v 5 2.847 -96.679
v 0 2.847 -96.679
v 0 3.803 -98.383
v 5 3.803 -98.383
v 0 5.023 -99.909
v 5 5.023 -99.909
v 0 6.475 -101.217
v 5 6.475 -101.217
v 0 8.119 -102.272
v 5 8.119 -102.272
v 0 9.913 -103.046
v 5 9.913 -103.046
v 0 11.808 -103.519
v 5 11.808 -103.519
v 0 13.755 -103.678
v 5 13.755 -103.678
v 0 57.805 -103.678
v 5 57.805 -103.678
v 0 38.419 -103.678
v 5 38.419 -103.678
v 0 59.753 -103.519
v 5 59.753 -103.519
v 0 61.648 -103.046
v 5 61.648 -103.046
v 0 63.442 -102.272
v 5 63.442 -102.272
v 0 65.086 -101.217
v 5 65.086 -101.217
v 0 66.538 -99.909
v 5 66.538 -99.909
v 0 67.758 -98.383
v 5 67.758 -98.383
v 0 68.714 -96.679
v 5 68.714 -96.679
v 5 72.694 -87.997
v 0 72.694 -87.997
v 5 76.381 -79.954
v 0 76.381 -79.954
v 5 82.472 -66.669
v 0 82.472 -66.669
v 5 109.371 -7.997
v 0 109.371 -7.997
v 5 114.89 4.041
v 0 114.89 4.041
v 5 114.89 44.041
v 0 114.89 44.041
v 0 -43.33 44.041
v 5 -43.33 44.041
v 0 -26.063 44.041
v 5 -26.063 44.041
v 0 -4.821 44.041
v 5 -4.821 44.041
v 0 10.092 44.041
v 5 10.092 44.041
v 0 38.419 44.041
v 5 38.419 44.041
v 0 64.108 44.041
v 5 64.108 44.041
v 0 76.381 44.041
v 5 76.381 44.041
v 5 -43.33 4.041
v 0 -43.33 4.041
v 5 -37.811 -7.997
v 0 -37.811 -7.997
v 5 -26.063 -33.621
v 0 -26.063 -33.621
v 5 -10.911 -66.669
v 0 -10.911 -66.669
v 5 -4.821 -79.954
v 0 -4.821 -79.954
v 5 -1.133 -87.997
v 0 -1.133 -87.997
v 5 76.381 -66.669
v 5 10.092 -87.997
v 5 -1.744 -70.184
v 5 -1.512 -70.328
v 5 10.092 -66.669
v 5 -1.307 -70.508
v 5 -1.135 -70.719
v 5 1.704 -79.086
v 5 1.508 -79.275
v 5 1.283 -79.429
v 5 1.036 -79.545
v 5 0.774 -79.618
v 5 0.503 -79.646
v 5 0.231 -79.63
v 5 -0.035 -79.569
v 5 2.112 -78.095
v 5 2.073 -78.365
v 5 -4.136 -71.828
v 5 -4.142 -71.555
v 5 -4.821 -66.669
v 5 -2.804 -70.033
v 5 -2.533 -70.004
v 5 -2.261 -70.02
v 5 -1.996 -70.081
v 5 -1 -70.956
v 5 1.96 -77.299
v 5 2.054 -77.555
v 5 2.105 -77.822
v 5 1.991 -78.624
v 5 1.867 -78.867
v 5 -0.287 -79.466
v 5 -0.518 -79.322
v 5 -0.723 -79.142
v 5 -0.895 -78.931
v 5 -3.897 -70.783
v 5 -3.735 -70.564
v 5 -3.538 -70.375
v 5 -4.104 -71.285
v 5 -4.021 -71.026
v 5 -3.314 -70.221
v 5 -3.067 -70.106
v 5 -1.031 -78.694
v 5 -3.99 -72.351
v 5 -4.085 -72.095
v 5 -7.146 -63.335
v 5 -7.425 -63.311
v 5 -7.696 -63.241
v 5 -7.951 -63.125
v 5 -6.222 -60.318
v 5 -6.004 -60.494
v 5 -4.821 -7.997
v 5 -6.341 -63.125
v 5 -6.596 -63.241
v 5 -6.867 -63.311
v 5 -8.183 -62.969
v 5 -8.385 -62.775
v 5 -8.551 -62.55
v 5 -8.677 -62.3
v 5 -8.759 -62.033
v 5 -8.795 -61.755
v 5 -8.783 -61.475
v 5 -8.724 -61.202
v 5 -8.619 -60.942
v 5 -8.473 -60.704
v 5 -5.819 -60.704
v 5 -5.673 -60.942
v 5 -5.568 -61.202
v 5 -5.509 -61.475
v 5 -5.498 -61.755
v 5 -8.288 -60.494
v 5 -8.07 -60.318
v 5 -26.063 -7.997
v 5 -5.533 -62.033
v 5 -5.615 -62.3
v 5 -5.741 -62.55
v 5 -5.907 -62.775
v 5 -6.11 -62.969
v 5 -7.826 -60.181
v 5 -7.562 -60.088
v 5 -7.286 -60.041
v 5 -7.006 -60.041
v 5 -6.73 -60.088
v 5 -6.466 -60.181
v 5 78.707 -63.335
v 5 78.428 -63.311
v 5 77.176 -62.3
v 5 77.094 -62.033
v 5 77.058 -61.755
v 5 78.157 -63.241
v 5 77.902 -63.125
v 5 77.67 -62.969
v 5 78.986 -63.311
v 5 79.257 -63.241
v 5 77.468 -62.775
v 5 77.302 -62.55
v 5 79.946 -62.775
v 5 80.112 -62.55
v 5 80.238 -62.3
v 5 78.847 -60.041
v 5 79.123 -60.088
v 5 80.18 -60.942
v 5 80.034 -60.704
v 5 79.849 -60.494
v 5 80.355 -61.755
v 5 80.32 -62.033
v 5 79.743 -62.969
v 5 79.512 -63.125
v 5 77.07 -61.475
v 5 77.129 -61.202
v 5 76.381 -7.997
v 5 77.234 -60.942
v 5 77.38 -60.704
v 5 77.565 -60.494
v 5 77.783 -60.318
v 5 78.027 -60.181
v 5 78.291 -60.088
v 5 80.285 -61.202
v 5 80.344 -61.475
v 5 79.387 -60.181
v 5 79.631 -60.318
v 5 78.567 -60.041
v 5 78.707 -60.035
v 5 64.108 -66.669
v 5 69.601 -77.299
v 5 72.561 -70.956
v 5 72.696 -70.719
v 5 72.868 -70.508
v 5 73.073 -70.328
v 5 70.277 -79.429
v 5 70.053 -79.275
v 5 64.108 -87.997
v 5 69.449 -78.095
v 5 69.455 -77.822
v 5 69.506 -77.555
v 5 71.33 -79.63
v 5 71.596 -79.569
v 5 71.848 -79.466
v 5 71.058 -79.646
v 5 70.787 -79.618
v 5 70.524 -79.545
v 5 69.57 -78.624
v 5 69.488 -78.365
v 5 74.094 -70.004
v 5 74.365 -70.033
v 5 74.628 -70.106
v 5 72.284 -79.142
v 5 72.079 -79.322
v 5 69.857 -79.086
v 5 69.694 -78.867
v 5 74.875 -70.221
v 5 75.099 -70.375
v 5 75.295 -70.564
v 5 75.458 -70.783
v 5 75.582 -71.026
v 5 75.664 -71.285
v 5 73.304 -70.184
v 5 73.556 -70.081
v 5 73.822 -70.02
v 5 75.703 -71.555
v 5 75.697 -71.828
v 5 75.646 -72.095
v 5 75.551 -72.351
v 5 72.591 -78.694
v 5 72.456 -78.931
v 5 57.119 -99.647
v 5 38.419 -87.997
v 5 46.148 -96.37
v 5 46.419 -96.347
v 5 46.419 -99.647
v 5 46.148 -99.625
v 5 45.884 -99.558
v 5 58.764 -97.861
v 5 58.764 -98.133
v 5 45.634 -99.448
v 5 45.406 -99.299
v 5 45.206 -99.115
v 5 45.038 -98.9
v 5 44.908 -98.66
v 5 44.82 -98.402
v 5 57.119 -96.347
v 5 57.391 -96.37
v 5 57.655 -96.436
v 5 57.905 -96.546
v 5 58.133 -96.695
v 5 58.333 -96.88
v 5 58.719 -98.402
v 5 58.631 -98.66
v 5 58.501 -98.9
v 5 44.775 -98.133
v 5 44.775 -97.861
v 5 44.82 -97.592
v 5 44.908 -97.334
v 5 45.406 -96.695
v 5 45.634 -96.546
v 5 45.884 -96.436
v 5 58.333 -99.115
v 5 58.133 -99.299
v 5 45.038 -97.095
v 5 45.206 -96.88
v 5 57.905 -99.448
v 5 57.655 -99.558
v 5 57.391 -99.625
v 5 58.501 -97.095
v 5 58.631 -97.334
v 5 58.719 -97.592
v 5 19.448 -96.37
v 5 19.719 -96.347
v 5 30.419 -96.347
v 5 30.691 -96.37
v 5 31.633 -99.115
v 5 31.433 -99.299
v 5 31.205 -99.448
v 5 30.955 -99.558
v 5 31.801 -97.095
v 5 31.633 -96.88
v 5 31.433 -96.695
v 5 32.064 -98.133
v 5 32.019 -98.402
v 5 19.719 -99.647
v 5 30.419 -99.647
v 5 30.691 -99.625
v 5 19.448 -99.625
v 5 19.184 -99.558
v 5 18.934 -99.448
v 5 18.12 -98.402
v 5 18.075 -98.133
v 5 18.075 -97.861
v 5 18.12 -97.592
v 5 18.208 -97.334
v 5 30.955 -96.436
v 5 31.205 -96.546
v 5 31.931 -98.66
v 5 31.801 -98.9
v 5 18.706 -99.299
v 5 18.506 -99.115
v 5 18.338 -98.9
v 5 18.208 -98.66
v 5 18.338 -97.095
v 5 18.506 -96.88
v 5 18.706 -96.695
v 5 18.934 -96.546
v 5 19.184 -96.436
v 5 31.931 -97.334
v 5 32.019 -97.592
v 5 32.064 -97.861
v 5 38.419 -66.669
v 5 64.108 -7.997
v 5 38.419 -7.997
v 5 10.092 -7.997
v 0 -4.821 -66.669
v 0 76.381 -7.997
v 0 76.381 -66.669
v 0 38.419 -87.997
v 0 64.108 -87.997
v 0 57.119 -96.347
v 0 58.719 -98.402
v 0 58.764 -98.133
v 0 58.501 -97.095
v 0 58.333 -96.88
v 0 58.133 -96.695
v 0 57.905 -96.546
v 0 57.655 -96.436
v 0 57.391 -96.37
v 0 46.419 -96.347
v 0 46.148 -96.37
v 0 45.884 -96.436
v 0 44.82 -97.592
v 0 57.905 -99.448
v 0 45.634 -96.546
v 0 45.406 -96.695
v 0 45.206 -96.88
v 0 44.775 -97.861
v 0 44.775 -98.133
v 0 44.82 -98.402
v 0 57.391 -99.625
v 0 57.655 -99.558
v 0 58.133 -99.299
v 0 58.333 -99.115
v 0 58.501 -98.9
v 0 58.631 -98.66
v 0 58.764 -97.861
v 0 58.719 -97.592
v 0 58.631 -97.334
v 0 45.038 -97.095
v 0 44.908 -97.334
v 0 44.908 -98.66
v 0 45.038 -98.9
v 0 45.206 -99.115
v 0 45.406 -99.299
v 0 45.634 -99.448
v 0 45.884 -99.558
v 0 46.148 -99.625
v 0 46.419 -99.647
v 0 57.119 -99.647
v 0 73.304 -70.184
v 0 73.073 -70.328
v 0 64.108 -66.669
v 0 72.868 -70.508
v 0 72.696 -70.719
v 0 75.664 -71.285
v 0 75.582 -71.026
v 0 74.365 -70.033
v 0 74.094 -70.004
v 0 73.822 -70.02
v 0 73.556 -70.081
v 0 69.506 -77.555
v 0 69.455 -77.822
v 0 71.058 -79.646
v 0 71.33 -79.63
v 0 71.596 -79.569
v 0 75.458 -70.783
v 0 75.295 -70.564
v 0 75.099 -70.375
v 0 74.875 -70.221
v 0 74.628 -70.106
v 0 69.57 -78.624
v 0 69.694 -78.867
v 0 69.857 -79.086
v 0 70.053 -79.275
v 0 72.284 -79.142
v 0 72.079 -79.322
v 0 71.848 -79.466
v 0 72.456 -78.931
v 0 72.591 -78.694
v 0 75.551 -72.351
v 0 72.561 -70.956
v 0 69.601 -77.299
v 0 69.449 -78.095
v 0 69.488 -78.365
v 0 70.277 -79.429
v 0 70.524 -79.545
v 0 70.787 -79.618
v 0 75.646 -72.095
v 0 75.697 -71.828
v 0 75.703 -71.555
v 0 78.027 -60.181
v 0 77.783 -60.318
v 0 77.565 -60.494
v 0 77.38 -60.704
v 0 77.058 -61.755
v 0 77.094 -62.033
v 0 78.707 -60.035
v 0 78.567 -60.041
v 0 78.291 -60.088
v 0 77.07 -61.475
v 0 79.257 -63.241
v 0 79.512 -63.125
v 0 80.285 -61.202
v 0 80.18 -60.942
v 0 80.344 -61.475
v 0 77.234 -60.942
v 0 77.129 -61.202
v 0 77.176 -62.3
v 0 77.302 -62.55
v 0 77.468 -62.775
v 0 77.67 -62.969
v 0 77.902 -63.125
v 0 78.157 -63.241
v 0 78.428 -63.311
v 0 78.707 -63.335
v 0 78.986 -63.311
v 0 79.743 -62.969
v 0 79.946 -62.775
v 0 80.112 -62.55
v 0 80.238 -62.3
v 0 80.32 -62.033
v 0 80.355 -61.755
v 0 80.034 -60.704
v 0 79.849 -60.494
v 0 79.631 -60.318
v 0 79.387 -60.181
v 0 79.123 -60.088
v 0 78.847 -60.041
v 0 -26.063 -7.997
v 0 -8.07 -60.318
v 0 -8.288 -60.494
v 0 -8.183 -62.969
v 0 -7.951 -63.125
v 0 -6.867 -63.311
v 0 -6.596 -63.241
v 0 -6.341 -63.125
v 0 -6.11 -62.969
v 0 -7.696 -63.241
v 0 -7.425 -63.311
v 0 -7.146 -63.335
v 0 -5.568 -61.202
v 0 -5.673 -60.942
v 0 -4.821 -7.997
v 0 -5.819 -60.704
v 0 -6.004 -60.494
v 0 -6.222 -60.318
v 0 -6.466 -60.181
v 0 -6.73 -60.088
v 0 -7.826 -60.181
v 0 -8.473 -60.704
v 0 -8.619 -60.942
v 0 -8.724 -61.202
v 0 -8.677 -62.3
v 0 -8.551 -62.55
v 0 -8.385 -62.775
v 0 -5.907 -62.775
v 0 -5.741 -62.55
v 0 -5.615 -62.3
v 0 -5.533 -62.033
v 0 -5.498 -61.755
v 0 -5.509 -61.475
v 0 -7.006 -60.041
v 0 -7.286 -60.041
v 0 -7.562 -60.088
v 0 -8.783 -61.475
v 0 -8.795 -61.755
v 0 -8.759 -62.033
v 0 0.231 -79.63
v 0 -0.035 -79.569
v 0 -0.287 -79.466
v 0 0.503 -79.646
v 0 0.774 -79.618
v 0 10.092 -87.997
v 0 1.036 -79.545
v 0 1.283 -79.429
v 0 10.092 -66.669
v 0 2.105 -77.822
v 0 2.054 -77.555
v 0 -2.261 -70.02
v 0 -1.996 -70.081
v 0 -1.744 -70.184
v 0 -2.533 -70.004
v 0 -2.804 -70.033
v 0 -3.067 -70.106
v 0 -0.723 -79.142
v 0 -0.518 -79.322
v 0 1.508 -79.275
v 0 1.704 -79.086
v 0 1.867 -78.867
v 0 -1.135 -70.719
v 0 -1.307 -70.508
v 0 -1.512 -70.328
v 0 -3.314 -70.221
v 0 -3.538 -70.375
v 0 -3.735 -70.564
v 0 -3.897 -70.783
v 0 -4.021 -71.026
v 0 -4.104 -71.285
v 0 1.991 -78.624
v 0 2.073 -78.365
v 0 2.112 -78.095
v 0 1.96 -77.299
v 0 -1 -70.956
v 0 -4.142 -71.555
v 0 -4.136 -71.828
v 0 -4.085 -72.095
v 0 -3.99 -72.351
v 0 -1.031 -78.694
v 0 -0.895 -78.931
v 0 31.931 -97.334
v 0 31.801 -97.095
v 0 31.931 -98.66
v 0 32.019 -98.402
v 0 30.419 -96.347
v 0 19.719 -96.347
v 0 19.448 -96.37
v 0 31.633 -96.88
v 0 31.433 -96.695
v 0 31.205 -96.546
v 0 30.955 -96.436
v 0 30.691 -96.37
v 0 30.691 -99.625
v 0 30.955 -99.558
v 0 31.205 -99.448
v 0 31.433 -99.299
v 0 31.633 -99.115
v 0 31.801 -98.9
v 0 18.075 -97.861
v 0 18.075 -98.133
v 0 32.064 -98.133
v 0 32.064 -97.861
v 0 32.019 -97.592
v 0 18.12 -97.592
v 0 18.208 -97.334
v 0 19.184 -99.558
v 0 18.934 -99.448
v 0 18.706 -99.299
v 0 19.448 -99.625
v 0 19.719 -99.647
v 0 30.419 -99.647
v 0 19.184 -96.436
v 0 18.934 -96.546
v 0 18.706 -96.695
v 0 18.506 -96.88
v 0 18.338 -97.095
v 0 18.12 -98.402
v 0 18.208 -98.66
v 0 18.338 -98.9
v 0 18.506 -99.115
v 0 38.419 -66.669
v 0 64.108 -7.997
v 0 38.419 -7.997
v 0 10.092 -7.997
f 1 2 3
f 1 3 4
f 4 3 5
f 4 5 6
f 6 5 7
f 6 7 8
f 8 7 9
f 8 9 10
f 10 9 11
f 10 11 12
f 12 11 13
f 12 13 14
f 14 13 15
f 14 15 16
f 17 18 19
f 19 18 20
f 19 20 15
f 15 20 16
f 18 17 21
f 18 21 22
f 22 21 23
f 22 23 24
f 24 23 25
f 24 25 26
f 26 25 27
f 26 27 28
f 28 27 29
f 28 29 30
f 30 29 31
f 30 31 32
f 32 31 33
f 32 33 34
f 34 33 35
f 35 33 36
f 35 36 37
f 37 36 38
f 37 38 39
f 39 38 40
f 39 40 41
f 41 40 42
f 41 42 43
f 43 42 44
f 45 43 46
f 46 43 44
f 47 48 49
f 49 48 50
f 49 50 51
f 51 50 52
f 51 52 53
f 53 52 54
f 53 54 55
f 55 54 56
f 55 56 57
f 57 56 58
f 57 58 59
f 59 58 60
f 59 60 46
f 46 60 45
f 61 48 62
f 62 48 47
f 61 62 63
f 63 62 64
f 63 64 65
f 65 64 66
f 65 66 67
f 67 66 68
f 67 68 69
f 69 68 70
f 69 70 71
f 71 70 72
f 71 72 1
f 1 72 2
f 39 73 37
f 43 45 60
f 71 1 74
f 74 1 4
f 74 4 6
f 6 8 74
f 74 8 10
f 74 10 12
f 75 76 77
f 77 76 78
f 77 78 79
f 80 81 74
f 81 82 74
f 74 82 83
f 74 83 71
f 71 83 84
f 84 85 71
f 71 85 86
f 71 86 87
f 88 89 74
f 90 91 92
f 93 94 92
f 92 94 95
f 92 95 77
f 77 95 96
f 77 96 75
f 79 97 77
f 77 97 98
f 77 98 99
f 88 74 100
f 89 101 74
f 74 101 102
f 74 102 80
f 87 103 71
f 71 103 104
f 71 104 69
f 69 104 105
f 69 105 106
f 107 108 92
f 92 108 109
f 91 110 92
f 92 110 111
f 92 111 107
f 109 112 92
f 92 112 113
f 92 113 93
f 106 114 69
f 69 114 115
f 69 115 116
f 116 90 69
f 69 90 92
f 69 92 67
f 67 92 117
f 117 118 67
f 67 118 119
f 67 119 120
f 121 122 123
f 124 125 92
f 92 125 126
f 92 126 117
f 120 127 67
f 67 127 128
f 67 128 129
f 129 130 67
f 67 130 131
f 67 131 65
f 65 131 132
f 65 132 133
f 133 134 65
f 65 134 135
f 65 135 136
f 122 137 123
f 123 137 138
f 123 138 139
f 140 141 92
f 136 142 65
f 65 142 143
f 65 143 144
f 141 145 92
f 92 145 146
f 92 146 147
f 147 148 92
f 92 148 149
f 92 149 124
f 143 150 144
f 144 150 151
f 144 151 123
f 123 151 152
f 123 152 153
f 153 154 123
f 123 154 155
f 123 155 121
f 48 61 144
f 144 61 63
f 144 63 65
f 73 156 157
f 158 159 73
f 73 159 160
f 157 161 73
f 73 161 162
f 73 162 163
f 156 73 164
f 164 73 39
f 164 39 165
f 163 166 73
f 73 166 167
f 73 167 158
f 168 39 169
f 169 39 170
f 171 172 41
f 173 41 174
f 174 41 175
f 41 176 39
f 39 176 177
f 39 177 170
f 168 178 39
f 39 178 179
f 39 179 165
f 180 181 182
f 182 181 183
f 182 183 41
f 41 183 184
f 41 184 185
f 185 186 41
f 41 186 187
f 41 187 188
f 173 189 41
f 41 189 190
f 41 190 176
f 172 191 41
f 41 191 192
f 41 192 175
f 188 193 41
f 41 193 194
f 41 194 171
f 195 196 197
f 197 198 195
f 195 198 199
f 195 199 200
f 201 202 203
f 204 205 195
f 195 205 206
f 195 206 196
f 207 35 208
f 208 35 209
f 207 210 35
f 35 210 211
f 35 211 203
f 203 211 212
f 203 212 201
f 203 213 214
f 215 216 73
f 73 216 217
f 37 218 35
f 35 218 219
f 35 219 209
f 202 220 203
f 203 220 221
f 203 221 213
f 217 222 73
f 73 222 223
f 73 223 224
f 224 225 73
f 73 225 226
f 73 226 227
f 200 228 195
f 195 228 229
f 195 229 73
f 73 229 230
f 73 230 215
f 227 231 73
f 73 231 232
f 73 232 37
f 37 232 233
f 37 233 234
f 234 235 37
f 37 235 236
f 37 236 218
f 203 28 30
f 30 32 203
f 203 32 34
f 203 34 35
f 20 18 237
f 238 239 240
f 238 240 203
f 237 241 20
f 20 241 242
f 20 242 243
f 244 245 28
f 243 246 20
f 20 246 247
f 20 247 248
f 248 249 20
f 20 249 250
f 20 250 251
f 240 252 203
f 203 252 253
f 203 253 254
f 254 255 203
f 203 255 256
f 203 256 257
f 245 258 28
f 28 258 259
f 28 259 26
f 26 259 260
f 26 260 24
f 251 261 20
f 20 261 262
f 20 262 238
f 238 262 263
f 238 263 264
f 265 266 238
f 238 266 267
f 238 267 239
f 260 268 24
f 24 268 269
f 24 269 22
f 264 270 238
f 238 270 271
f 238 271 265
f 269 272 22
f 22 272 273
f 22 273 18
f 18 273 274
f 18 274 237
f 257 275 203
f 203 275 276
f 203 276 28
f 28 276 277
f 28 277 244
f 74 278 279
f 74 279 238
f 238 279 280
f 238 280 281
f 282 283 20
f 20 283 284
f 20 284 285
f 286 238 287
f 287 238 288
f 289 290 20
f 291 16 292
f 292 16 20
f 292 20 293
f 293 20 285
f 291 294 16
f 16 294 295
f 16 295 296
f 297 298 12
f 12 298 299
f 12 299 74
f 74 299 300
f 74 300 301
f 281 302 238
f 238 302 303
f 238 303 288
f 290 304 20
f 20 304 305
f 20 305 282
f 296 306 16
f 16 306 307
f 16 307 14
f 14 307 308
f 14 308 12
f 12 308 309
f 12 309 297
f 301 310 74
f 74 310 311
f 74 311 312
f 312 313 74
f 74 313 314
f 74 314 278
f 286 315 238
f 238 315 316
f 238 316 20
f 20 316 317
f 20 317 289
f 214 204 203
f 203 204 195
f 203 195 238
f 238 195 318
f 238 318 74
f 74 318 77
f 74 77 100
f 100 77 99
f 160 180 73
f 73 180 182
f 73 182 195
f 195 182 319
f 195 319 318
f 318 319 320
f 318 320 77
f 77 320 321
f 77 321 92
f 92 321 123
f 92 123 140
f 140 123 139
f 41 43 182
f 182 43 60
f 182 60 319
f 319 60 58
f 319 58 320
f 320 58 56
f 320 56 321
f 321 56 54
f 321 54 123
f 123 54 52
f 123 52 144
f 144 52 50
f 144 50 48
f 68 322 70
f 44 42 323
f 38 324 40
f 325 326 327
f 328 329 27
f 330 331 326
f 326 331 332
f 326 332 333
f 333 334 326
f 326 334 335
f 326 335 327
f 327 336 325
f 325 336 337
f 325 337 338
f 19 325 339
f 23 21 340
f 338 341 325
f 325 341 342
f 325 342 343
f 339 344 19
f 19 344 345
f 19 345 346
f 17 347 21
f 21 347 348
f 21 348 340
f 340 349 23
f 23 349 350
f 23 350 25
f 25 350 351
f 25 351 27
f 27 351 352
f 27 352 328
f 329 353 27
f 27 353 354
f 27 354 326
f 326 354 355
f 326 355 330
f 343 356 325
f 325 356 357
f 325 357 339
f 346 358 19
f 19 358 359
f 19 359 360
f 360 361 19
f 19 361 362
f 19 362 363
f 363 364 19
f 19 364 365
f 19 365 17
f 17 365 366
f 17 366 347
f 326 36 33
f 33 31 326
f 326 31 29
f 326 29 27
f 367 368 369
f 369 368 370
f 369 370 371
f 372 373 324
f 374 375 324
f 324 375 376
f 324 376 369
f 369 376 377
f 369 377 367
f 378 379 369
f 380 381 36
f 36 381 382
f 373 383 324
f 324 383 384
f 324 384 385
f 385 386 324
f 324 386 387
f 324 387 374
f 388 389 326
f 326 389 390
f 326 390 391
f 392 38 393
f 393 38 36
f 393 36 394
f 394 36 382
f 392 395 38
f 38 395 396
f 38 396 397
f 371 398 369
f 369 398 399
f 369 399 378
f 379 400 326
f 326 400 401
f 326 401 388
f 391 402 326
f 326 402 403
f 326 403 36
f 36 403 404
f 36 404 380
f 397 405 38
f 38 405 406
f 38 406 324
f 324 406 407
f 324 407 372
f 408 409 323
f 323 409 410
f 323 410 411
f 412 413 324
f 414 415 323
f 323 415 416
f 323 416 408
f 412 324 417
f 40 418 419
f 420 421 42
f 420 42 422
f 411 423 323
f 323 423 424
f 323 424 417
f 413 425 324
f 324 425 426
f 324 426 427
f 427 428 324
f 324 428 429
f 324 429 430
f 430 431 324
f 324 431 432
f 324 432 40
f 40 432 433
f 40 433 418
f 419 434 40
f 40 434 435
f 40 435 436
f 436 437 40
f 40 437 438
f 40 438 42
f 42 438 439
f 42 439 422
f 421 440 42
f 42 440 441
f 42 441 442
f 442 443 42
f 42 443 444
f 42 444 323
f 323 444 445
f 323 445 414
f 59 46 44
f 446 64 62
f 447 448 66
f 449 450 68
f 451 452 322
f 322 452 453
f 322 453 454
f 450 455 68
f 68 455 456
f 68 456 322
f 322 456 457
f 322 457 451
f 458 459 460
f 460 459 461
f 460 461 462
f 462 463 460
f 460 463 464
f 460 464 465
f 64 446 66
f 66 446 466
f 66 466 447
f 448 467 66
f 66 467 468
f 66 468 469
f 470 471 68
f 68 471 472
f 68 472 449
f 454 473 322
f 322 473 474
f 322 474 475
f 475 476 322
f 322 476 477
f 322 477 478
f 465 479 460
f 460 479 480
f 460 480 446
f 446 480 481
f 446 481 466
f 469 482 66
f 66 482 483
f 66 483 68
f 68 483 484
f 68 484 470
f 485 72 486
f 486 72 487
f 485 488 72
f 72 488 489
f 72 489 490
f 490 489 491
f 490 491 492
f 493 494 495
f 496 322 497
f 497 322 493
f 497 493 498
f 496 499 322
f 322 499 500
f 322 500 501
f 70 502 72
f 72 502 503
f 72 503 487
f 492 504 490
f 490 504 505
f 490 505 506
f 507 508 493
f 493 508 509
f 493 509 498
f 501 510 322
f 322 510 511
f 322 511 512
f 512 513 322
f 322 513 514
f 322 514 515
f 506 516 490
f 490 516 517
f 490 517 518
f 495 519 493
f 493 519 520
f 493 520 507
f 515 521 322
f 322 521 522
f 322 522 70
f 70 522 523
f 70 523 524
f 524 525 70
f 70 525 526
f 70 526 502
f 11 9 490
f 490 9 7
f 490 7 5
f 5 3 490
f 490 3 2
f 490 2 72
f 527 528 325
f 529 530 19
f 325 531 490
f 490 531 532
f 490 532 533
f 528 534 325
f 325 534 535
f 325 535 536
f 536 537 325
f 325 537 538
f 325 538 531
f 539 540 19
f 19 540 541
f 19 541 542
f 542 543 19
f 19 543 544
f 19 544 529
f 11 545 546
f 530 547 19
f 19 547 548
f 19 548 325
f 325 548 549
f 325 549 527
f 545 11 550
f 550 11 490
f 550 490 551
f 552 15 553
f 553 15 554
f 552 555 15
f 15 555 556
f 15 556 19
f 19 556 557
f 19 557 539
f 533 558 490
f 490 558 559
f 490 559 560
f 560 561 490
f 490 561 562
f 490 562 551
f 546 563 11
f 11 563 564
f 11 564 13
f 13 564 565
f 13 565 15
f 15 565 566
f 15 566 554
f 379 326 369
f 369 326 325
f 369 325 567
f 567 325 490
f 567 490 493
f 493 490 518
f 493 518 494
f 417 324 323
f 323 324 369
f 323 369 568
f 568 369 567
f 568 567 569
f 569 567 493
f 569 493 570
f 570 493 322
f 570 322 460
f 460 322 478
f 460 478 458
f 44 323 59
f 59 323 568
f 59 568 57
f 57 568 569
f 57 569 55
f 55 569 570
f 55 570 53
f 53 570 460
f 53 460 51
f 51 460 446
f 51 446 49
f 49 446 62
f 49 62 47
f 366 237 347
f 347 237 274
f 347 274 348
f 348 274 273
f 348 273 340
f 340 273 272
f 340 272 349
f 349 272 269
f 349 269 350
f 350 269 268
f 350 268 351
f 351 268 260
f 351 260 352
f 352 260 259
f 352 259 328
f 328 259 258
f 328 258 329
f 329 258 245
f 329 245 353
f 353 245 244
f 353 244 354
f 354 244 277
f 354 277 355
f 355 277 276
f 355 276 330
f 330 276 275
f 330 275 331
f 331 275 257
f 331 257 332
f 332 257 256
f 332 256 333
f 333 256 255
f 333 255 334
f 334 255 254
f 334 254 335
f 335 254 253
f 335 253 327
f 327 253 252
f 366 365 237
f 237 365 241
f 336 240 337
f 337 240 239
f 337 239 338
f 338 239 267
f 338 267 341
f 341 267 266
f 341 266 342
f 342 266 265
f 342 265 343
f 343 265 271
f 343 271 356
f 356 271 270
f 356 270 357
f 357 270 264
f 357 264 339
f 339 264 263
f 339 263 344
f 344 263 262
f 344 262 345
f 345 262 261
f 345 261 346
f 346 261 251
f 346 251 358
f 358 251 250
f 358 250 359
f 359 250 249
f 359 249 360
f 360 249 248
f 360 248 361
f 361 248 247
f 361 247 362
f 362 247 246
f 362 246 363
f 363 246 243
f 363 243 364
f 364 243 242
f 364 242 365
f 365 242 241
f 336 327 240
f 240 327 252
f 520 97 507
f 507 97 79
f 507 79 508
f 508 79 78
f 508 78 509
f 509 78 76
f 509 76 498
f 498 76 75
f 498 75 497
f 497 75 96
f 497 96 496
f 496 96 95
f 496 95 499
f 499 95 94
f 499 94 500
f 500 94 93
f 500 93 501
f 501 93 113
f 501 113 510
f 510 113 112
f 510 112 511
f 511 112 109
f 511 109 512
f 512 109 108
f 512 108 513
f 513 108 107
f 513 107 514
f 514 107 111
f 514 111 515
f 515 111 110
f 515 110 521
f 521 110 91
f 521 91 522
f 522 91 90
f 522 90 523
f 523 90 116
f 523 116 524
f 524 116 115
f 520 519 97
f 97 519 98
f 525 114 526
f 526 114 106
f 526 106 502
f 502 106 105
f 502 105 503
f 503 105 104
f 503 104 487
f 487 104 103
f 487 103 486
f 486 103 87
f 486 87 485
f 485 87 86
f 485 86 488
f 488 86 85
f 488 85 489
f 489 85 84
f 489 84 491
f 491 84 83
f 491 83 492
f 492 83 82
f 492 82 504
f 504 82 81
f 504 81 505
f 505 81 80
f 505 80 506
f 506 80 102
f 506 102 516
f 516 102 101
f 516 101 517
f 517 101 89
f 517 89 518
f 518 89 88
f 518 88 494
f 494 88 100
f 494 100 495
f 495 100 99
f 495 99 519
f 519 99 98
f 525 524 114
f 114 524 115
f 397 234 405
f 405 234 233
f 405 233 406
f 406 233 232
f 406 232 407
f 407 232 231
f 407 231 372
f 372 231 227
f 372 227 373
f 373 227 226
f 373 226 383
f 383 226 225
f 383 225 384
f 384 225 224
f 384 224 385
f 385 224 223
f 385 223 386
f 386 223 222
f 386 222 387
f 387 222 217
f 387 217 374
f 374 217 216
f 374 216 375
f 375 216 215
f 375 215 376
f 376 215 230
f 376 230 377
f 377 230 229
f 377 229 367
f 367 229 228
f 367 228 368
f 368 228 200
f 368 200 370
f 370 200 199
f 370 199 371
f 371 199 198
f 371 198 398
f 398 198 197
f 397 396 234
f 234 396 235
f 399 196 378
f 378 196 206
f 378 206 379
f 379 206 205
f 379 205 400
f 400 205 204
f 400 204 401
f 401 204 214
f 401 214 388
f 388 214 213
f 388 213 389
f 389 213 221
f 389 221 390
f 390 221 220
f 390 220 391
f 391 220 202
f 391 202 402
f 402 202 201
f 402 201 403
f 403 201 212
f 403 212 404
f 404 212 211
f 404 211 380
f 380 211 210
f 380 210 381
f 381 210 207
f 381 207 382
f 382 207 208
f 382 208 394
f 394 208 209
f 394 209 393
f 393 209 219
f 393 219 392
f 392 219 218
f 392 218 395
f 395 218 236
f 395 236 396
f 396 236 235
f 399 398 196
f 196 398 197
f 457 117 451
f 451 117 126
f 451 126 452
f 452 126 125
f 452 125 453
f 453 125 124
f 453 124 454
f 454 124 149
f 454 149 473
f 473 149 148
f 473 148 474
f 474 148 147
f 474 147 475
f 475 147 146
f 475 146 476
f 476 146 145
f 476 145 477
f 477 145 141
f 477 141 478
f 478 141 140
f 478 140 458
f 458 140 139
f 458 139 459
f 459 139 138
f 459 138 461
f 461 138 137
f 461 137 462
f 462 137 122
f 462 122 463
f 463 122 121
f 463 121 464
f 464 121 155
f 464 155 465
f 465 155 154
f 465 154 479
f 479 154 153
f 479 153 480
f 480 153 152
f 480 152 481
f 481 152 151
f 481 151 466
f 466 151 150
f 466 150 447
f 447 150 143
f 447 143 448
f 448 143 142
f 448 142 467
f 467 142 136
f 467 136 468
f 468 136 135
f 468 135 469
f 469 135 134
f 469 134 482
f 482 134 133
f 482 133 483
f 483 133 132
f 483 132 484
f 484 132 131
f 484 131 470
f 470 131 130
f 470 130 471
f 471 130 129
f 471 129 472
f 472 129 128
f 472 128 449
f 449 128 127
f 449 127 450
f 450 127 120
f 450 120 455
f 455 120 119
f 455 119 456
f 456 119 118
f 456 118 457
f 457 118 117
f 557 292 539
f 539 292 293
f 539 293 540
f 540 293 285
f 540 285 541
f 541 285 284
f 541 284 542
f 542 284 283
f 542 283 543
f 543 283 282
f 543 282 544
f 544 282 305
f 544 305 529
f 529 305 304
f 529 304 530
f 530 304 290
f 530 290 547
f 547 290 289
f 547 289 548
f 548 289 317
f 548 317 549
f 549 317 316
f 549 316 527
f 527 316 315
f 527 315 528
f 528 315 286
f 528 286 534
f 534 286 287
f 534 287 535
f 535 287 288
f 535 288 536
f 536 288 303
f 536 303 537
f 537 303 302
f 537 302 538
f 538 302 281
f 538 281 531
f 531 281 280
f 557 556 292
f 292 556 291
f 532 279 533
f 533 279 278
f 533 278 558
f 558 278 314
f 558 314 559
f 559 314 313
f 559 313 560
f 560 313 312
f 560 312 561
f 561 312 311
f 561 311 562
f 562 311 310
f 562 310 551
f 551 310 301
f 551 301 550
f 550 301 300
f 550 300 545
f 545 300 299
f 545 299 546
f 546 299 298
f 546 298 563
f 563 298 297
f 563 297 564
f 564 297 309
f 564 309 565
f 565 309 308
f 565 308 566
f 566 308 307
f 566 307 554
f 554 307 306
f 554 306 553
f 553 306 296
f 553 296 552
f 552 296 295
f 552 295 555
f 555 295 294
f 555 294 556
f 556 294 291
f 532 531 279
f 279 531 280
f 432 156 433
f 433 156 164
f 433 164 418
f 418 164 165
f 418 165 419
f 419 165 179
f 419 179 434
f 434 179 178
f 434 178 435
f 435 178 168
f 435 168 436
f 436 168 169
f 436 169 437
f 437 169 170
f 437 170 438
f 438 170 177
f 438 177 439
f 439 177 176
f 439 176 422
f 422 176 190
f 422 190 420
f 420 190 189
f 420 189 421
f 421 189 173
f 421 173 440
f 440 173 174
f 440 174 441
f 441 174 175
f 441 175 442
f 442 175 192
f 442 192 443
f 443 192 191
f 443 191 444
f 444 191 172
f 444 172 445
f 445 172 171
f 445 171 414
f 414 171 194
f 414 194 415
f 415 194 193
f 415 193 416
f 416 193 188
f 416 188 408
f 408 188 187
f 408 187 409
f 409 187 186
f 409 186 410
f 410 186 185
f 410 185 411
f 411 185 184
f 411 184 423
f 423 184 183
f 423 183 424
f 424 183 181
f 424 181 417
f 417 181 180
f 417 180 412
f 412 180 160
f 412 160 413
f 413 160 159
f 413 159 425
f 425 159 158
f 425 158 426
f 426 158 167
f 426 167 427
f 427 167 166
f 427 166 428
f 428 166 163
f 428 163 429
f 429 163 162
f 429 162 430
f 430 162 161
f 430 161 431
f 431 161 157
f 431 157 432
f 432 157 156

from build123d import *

# Parameters (mm, degrees)
BOSS_EXTRUDE1_DEPTH = 5
SKETCH4_R           = 1.65
CUT_EXTRUDE1_DEPTH  = 5


with BuildPart() as part:
    # Sketch1 → Boss-Extrude1 (new body)
    with BuildSketch(Plane(origin=(0, 0, 0), x_dir=(0, 0, -1), z_dir=(1, 0, 0))):
        with BuildLine():
            Line((-44.040507459, 114.890413128), (-44.040507459, -43.329586872))
            Line((-44.040507459, -43.329586872), (-4.040507459, -43.329586872))
            Line((-4.040507459, -43.329586872), (96.679252091, 2.847191371))
            ThreePointArc((96.679252091, 2.847191371), (101.778005077, 7.275167621), (103.678182397, 13.755413128))
            Line((103.678182397, 13.755413128), (103.678182397, 57.805413128))
            ThreePointArc((103.678182397, 57.805413128), (101.778005077, 64.285658635), (96.679252091, 68.713634886))
            Line((96.679252091, 68.713634886), (-4.040507459, 114.890413128))
            Line((-4.040507459, 114.890413128), (-44.040507459, 114.890413128))
        make_face()
    extrude(amount=BOSS_EXTRUDE1_DEPTH)

    # Sketch4 → Cut-Extrude1 (cut)
    with BuildSketch(Plane(origin=(5, 0, 0), x_dir=(0, 0, -1), z_dir=(1, 0, 0))):
        with Locations((61.684952492, -7.146090177)):
            Circle(SKETCH4_R)
        with Locations(Location((61.684952492, 78.706916433, 0), (0, 0, 180))):
            Circle(SKETCH4_R)
        with BuildLine():
            Line((99.647066235, 57.119488088), (99.647066235, 46.419488088))
            ThreePointArc((99.647066235, 46.419488088), (97.997066235, 44.769488088), (96.347066235, 46.419488088))
            Line((96.347066235, 46.419488088), (96.347066235, 57.119488088))
            ThreePointArc((96.347066235, 57.119488088), (97.997066235, 58.769488088), (99.647066235, 57.119488088))
        make_face()
        with BuildLine():
            Line((99.647066235, 30.419488088), (99.647066235, 19.719488088))
            ThreePointArc((99.647066235, 19.719488088), (97.997066235, 18.069488088), (96.347066235, 19.719488088))
            Line((96.347066235, 19.719488088), (96.347066235, 30.419488088))
            ThreePointArc((96.347066235, 30.419488088), (97.997066235, 32.069488088), (99.647066235, 30.419488088))
        make_face()
        with BuildLine():
            Line((70.955654901, -0.999824899), (77.299153047, 1.959910101))
            ThreePointArc((77.299153047, 1.959910101), (79.492058003, 1.162308788), (78.69445669, -1.030596168))
            Line((78.69445669, -1.030596168), (72.350958543, -3.990331168))
            ThreePointArc((72.350958543, -3.990331168), (70.158053588, -3.192729855), (70.955654901, -0.999824899))
        make_face()
        with BuildLine():
            Line((70.955654901, 72.560651156), (77.299153047, 69.600916156))
            ThreePointArc((77.299153047, 69.600916156), (79.492058003, 70.398517469), (78.69445669, 72.591422424))
            Line((78.69445669, 72.591422424), (72.350958543, 75.551157424))
            ThreePointArc((72.350958543, 75.551157424), (70.158053588, 74.753556111), (70.955654901, 72.560651156))
        make_face()
    extrude(amount=-CUT_EXTRUDE1_DEPTH, mode=Mode.SUBTRACT)


solid = part.part
